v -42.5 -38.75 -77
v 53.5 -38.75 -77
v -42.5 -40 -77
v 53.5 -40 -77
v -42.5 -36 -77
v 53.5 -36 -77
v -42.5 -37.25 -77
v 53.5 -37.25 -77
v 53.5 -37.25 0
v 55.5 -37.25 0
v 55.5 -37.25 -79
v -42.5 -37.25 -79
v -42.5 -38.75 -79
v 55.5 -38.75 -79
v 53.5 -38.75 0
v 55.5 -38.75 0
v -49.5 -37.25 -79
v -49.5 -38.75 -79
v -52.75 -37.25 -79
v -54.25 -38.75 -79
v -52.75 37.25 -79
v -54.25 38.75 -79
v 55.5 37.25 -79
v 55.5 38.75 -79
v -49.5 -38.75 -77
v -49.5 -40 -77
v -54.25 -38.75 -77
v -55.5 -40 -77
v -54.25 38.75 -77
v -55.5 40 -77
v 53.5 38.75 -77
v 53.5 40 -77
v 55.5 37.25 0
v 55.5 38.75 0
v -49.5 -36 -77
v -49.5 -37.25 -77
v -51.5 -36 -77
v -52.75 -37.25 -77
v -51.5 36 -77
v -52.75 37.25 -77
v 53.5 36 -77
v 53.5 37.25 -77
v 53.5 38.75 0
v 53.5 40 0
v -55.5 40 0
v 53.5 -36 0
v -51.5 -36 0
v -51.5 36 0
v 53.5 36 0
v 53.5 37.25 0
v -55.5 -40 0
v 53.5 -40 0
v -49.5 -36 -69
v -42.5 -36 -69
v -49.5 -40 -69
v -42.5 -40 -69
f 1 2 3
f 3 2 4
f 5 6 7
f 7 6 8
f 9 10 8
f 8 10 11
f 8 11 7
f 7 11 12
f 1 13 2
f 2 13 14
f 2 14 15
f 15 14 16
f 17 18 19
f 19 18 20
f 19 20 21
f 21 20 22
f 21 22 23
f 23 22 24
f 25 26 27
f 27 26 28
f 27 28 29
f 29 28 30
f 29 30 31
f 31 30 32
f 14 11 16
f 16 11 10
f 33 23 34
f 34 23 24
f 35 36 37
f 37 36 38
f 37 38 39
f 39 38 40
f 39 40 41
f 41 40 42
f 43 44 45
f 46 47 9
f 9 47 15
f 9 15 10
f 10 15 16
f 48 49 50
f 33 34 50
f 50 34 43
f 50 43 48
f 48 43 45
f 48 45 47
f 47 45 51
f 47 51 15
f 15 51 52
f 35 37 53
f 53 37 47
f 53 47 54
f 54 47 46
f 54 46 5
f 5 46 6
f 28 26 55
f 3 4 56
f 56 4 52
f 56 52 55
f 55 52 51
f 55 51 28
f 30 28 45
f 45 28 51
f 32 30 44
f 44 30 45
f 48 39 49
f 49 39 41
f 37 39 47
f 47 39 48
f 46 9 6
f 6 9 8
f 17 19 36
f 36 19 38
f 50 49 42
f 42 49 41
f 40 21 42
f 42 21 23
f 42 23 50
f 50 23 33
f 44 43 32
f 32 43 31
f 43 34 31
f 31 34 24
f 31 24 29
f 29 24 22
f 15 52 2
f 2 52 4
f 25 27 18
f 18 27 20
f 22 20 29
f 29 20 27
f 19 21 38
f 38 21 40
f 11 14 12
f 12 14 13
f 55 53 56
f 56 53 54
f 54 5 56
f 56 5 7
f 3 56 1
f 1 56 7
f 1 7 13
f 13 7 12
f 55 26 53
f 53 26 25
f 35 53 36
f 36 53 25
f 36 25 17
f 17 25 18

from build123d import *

# Parameters (mm, degrees)
Y_KSEKLIK_EKSTR_ZYON2_DEPTH = 77
IZIM3_W                     = 2
IZIM3_H                     = 1.25
KES_EKSTR_ZYON1_DEPTH       = 77
IZIM6_W                     = 1.5
IZIM6_H                     = 74.5
Y_KSEKLIK_EKSTR_ZYON3_DEPTH = 2
IZIM7_W                     = 7
IZIM7_H                     = 10
KES_EKSTR_ZYON2_DEPTH       = 10


with BuildPart() as part:
    # Çizim2 → Yükseklik-Ekstrüzyon2 (new body)
    with BuildSketch(Plane.XY):
        Polygon((55.5, 40), (-55.5, 40), (-55.5, -40), (55.5, -40), (55.5, -36), (-51.5, -36), (-51.5, 36), (55.5, 36), align=None)
    extrude(amount=-Y_KSEKLIK_EKSTR_ZYON2_DEPTH)

    # Çizim3 → Kes-Ekstrüzyon1 (cut)
    with BuildSketch(Plane(origin=(0, 0, -77), x_dir=(-1, 0, 0), z_dir=(0, 0, -1))):
        with Locations((-54.5, -36.625)):
            Rectangle(IZIM3_W, IZIM3_H)
        with Locations((-54.5, -39.375)):
            Rectangle(IZIM3_W, IZIM3_H)
        with Locations((-54.5, 39.375)):
            Rectangle(IZIM3_W, IZIM3_H)
        with Locations((-54.5, 36.625)):
            Rectangle(IZIM3_W, IZIM3_H)
    extrude(amount=-KES_EKSTR_ZYON1_DEPTH, mode=Mode.SUBTRACT)

    # Çizim6 → Yükseklik-Ekstrüzyon3 (add)
    with BuildSketch(Plane(origin=(0, 0, -77), x_dir=(-1, 0, 0), z_dir=(0, 0, -1))):
        Polygon((-53.5, 38.75), (-55.5, 38.75), (-55.5, 37.25), (-53.5, 37.25), (52.75, 37.25), (54.25, 37.25), (54.25, 38.75), align=None)
        with Locations((53.5, 0)):
            Rectangle(IZIM6_W, IZIM6_H)
        Polygon((54.25, -38.75), (54.25, -37.25), (52.75, -37.25), (-53.5, -37.25), (-55.5, -37.25), (-55.5, -38.75), (-53.5, -38.75), align=None)
    extrude(amount=Y_KSEKLIK_EKSTR_ZYON3_DEPTH)

    # Çizim7 → Kes-Ekstrüzyon2 (cut)
    with BuildSketch(Plane.XZ.offset(40)):
        with Locations((-46, -74)):
            Rectangle(IZIM7_W, IZIM7_H)
    extrude(amount=-KES_EKSTR_ZYON2_DEPTH, mode=Mode.SUBTRACT)


solid = part.part
